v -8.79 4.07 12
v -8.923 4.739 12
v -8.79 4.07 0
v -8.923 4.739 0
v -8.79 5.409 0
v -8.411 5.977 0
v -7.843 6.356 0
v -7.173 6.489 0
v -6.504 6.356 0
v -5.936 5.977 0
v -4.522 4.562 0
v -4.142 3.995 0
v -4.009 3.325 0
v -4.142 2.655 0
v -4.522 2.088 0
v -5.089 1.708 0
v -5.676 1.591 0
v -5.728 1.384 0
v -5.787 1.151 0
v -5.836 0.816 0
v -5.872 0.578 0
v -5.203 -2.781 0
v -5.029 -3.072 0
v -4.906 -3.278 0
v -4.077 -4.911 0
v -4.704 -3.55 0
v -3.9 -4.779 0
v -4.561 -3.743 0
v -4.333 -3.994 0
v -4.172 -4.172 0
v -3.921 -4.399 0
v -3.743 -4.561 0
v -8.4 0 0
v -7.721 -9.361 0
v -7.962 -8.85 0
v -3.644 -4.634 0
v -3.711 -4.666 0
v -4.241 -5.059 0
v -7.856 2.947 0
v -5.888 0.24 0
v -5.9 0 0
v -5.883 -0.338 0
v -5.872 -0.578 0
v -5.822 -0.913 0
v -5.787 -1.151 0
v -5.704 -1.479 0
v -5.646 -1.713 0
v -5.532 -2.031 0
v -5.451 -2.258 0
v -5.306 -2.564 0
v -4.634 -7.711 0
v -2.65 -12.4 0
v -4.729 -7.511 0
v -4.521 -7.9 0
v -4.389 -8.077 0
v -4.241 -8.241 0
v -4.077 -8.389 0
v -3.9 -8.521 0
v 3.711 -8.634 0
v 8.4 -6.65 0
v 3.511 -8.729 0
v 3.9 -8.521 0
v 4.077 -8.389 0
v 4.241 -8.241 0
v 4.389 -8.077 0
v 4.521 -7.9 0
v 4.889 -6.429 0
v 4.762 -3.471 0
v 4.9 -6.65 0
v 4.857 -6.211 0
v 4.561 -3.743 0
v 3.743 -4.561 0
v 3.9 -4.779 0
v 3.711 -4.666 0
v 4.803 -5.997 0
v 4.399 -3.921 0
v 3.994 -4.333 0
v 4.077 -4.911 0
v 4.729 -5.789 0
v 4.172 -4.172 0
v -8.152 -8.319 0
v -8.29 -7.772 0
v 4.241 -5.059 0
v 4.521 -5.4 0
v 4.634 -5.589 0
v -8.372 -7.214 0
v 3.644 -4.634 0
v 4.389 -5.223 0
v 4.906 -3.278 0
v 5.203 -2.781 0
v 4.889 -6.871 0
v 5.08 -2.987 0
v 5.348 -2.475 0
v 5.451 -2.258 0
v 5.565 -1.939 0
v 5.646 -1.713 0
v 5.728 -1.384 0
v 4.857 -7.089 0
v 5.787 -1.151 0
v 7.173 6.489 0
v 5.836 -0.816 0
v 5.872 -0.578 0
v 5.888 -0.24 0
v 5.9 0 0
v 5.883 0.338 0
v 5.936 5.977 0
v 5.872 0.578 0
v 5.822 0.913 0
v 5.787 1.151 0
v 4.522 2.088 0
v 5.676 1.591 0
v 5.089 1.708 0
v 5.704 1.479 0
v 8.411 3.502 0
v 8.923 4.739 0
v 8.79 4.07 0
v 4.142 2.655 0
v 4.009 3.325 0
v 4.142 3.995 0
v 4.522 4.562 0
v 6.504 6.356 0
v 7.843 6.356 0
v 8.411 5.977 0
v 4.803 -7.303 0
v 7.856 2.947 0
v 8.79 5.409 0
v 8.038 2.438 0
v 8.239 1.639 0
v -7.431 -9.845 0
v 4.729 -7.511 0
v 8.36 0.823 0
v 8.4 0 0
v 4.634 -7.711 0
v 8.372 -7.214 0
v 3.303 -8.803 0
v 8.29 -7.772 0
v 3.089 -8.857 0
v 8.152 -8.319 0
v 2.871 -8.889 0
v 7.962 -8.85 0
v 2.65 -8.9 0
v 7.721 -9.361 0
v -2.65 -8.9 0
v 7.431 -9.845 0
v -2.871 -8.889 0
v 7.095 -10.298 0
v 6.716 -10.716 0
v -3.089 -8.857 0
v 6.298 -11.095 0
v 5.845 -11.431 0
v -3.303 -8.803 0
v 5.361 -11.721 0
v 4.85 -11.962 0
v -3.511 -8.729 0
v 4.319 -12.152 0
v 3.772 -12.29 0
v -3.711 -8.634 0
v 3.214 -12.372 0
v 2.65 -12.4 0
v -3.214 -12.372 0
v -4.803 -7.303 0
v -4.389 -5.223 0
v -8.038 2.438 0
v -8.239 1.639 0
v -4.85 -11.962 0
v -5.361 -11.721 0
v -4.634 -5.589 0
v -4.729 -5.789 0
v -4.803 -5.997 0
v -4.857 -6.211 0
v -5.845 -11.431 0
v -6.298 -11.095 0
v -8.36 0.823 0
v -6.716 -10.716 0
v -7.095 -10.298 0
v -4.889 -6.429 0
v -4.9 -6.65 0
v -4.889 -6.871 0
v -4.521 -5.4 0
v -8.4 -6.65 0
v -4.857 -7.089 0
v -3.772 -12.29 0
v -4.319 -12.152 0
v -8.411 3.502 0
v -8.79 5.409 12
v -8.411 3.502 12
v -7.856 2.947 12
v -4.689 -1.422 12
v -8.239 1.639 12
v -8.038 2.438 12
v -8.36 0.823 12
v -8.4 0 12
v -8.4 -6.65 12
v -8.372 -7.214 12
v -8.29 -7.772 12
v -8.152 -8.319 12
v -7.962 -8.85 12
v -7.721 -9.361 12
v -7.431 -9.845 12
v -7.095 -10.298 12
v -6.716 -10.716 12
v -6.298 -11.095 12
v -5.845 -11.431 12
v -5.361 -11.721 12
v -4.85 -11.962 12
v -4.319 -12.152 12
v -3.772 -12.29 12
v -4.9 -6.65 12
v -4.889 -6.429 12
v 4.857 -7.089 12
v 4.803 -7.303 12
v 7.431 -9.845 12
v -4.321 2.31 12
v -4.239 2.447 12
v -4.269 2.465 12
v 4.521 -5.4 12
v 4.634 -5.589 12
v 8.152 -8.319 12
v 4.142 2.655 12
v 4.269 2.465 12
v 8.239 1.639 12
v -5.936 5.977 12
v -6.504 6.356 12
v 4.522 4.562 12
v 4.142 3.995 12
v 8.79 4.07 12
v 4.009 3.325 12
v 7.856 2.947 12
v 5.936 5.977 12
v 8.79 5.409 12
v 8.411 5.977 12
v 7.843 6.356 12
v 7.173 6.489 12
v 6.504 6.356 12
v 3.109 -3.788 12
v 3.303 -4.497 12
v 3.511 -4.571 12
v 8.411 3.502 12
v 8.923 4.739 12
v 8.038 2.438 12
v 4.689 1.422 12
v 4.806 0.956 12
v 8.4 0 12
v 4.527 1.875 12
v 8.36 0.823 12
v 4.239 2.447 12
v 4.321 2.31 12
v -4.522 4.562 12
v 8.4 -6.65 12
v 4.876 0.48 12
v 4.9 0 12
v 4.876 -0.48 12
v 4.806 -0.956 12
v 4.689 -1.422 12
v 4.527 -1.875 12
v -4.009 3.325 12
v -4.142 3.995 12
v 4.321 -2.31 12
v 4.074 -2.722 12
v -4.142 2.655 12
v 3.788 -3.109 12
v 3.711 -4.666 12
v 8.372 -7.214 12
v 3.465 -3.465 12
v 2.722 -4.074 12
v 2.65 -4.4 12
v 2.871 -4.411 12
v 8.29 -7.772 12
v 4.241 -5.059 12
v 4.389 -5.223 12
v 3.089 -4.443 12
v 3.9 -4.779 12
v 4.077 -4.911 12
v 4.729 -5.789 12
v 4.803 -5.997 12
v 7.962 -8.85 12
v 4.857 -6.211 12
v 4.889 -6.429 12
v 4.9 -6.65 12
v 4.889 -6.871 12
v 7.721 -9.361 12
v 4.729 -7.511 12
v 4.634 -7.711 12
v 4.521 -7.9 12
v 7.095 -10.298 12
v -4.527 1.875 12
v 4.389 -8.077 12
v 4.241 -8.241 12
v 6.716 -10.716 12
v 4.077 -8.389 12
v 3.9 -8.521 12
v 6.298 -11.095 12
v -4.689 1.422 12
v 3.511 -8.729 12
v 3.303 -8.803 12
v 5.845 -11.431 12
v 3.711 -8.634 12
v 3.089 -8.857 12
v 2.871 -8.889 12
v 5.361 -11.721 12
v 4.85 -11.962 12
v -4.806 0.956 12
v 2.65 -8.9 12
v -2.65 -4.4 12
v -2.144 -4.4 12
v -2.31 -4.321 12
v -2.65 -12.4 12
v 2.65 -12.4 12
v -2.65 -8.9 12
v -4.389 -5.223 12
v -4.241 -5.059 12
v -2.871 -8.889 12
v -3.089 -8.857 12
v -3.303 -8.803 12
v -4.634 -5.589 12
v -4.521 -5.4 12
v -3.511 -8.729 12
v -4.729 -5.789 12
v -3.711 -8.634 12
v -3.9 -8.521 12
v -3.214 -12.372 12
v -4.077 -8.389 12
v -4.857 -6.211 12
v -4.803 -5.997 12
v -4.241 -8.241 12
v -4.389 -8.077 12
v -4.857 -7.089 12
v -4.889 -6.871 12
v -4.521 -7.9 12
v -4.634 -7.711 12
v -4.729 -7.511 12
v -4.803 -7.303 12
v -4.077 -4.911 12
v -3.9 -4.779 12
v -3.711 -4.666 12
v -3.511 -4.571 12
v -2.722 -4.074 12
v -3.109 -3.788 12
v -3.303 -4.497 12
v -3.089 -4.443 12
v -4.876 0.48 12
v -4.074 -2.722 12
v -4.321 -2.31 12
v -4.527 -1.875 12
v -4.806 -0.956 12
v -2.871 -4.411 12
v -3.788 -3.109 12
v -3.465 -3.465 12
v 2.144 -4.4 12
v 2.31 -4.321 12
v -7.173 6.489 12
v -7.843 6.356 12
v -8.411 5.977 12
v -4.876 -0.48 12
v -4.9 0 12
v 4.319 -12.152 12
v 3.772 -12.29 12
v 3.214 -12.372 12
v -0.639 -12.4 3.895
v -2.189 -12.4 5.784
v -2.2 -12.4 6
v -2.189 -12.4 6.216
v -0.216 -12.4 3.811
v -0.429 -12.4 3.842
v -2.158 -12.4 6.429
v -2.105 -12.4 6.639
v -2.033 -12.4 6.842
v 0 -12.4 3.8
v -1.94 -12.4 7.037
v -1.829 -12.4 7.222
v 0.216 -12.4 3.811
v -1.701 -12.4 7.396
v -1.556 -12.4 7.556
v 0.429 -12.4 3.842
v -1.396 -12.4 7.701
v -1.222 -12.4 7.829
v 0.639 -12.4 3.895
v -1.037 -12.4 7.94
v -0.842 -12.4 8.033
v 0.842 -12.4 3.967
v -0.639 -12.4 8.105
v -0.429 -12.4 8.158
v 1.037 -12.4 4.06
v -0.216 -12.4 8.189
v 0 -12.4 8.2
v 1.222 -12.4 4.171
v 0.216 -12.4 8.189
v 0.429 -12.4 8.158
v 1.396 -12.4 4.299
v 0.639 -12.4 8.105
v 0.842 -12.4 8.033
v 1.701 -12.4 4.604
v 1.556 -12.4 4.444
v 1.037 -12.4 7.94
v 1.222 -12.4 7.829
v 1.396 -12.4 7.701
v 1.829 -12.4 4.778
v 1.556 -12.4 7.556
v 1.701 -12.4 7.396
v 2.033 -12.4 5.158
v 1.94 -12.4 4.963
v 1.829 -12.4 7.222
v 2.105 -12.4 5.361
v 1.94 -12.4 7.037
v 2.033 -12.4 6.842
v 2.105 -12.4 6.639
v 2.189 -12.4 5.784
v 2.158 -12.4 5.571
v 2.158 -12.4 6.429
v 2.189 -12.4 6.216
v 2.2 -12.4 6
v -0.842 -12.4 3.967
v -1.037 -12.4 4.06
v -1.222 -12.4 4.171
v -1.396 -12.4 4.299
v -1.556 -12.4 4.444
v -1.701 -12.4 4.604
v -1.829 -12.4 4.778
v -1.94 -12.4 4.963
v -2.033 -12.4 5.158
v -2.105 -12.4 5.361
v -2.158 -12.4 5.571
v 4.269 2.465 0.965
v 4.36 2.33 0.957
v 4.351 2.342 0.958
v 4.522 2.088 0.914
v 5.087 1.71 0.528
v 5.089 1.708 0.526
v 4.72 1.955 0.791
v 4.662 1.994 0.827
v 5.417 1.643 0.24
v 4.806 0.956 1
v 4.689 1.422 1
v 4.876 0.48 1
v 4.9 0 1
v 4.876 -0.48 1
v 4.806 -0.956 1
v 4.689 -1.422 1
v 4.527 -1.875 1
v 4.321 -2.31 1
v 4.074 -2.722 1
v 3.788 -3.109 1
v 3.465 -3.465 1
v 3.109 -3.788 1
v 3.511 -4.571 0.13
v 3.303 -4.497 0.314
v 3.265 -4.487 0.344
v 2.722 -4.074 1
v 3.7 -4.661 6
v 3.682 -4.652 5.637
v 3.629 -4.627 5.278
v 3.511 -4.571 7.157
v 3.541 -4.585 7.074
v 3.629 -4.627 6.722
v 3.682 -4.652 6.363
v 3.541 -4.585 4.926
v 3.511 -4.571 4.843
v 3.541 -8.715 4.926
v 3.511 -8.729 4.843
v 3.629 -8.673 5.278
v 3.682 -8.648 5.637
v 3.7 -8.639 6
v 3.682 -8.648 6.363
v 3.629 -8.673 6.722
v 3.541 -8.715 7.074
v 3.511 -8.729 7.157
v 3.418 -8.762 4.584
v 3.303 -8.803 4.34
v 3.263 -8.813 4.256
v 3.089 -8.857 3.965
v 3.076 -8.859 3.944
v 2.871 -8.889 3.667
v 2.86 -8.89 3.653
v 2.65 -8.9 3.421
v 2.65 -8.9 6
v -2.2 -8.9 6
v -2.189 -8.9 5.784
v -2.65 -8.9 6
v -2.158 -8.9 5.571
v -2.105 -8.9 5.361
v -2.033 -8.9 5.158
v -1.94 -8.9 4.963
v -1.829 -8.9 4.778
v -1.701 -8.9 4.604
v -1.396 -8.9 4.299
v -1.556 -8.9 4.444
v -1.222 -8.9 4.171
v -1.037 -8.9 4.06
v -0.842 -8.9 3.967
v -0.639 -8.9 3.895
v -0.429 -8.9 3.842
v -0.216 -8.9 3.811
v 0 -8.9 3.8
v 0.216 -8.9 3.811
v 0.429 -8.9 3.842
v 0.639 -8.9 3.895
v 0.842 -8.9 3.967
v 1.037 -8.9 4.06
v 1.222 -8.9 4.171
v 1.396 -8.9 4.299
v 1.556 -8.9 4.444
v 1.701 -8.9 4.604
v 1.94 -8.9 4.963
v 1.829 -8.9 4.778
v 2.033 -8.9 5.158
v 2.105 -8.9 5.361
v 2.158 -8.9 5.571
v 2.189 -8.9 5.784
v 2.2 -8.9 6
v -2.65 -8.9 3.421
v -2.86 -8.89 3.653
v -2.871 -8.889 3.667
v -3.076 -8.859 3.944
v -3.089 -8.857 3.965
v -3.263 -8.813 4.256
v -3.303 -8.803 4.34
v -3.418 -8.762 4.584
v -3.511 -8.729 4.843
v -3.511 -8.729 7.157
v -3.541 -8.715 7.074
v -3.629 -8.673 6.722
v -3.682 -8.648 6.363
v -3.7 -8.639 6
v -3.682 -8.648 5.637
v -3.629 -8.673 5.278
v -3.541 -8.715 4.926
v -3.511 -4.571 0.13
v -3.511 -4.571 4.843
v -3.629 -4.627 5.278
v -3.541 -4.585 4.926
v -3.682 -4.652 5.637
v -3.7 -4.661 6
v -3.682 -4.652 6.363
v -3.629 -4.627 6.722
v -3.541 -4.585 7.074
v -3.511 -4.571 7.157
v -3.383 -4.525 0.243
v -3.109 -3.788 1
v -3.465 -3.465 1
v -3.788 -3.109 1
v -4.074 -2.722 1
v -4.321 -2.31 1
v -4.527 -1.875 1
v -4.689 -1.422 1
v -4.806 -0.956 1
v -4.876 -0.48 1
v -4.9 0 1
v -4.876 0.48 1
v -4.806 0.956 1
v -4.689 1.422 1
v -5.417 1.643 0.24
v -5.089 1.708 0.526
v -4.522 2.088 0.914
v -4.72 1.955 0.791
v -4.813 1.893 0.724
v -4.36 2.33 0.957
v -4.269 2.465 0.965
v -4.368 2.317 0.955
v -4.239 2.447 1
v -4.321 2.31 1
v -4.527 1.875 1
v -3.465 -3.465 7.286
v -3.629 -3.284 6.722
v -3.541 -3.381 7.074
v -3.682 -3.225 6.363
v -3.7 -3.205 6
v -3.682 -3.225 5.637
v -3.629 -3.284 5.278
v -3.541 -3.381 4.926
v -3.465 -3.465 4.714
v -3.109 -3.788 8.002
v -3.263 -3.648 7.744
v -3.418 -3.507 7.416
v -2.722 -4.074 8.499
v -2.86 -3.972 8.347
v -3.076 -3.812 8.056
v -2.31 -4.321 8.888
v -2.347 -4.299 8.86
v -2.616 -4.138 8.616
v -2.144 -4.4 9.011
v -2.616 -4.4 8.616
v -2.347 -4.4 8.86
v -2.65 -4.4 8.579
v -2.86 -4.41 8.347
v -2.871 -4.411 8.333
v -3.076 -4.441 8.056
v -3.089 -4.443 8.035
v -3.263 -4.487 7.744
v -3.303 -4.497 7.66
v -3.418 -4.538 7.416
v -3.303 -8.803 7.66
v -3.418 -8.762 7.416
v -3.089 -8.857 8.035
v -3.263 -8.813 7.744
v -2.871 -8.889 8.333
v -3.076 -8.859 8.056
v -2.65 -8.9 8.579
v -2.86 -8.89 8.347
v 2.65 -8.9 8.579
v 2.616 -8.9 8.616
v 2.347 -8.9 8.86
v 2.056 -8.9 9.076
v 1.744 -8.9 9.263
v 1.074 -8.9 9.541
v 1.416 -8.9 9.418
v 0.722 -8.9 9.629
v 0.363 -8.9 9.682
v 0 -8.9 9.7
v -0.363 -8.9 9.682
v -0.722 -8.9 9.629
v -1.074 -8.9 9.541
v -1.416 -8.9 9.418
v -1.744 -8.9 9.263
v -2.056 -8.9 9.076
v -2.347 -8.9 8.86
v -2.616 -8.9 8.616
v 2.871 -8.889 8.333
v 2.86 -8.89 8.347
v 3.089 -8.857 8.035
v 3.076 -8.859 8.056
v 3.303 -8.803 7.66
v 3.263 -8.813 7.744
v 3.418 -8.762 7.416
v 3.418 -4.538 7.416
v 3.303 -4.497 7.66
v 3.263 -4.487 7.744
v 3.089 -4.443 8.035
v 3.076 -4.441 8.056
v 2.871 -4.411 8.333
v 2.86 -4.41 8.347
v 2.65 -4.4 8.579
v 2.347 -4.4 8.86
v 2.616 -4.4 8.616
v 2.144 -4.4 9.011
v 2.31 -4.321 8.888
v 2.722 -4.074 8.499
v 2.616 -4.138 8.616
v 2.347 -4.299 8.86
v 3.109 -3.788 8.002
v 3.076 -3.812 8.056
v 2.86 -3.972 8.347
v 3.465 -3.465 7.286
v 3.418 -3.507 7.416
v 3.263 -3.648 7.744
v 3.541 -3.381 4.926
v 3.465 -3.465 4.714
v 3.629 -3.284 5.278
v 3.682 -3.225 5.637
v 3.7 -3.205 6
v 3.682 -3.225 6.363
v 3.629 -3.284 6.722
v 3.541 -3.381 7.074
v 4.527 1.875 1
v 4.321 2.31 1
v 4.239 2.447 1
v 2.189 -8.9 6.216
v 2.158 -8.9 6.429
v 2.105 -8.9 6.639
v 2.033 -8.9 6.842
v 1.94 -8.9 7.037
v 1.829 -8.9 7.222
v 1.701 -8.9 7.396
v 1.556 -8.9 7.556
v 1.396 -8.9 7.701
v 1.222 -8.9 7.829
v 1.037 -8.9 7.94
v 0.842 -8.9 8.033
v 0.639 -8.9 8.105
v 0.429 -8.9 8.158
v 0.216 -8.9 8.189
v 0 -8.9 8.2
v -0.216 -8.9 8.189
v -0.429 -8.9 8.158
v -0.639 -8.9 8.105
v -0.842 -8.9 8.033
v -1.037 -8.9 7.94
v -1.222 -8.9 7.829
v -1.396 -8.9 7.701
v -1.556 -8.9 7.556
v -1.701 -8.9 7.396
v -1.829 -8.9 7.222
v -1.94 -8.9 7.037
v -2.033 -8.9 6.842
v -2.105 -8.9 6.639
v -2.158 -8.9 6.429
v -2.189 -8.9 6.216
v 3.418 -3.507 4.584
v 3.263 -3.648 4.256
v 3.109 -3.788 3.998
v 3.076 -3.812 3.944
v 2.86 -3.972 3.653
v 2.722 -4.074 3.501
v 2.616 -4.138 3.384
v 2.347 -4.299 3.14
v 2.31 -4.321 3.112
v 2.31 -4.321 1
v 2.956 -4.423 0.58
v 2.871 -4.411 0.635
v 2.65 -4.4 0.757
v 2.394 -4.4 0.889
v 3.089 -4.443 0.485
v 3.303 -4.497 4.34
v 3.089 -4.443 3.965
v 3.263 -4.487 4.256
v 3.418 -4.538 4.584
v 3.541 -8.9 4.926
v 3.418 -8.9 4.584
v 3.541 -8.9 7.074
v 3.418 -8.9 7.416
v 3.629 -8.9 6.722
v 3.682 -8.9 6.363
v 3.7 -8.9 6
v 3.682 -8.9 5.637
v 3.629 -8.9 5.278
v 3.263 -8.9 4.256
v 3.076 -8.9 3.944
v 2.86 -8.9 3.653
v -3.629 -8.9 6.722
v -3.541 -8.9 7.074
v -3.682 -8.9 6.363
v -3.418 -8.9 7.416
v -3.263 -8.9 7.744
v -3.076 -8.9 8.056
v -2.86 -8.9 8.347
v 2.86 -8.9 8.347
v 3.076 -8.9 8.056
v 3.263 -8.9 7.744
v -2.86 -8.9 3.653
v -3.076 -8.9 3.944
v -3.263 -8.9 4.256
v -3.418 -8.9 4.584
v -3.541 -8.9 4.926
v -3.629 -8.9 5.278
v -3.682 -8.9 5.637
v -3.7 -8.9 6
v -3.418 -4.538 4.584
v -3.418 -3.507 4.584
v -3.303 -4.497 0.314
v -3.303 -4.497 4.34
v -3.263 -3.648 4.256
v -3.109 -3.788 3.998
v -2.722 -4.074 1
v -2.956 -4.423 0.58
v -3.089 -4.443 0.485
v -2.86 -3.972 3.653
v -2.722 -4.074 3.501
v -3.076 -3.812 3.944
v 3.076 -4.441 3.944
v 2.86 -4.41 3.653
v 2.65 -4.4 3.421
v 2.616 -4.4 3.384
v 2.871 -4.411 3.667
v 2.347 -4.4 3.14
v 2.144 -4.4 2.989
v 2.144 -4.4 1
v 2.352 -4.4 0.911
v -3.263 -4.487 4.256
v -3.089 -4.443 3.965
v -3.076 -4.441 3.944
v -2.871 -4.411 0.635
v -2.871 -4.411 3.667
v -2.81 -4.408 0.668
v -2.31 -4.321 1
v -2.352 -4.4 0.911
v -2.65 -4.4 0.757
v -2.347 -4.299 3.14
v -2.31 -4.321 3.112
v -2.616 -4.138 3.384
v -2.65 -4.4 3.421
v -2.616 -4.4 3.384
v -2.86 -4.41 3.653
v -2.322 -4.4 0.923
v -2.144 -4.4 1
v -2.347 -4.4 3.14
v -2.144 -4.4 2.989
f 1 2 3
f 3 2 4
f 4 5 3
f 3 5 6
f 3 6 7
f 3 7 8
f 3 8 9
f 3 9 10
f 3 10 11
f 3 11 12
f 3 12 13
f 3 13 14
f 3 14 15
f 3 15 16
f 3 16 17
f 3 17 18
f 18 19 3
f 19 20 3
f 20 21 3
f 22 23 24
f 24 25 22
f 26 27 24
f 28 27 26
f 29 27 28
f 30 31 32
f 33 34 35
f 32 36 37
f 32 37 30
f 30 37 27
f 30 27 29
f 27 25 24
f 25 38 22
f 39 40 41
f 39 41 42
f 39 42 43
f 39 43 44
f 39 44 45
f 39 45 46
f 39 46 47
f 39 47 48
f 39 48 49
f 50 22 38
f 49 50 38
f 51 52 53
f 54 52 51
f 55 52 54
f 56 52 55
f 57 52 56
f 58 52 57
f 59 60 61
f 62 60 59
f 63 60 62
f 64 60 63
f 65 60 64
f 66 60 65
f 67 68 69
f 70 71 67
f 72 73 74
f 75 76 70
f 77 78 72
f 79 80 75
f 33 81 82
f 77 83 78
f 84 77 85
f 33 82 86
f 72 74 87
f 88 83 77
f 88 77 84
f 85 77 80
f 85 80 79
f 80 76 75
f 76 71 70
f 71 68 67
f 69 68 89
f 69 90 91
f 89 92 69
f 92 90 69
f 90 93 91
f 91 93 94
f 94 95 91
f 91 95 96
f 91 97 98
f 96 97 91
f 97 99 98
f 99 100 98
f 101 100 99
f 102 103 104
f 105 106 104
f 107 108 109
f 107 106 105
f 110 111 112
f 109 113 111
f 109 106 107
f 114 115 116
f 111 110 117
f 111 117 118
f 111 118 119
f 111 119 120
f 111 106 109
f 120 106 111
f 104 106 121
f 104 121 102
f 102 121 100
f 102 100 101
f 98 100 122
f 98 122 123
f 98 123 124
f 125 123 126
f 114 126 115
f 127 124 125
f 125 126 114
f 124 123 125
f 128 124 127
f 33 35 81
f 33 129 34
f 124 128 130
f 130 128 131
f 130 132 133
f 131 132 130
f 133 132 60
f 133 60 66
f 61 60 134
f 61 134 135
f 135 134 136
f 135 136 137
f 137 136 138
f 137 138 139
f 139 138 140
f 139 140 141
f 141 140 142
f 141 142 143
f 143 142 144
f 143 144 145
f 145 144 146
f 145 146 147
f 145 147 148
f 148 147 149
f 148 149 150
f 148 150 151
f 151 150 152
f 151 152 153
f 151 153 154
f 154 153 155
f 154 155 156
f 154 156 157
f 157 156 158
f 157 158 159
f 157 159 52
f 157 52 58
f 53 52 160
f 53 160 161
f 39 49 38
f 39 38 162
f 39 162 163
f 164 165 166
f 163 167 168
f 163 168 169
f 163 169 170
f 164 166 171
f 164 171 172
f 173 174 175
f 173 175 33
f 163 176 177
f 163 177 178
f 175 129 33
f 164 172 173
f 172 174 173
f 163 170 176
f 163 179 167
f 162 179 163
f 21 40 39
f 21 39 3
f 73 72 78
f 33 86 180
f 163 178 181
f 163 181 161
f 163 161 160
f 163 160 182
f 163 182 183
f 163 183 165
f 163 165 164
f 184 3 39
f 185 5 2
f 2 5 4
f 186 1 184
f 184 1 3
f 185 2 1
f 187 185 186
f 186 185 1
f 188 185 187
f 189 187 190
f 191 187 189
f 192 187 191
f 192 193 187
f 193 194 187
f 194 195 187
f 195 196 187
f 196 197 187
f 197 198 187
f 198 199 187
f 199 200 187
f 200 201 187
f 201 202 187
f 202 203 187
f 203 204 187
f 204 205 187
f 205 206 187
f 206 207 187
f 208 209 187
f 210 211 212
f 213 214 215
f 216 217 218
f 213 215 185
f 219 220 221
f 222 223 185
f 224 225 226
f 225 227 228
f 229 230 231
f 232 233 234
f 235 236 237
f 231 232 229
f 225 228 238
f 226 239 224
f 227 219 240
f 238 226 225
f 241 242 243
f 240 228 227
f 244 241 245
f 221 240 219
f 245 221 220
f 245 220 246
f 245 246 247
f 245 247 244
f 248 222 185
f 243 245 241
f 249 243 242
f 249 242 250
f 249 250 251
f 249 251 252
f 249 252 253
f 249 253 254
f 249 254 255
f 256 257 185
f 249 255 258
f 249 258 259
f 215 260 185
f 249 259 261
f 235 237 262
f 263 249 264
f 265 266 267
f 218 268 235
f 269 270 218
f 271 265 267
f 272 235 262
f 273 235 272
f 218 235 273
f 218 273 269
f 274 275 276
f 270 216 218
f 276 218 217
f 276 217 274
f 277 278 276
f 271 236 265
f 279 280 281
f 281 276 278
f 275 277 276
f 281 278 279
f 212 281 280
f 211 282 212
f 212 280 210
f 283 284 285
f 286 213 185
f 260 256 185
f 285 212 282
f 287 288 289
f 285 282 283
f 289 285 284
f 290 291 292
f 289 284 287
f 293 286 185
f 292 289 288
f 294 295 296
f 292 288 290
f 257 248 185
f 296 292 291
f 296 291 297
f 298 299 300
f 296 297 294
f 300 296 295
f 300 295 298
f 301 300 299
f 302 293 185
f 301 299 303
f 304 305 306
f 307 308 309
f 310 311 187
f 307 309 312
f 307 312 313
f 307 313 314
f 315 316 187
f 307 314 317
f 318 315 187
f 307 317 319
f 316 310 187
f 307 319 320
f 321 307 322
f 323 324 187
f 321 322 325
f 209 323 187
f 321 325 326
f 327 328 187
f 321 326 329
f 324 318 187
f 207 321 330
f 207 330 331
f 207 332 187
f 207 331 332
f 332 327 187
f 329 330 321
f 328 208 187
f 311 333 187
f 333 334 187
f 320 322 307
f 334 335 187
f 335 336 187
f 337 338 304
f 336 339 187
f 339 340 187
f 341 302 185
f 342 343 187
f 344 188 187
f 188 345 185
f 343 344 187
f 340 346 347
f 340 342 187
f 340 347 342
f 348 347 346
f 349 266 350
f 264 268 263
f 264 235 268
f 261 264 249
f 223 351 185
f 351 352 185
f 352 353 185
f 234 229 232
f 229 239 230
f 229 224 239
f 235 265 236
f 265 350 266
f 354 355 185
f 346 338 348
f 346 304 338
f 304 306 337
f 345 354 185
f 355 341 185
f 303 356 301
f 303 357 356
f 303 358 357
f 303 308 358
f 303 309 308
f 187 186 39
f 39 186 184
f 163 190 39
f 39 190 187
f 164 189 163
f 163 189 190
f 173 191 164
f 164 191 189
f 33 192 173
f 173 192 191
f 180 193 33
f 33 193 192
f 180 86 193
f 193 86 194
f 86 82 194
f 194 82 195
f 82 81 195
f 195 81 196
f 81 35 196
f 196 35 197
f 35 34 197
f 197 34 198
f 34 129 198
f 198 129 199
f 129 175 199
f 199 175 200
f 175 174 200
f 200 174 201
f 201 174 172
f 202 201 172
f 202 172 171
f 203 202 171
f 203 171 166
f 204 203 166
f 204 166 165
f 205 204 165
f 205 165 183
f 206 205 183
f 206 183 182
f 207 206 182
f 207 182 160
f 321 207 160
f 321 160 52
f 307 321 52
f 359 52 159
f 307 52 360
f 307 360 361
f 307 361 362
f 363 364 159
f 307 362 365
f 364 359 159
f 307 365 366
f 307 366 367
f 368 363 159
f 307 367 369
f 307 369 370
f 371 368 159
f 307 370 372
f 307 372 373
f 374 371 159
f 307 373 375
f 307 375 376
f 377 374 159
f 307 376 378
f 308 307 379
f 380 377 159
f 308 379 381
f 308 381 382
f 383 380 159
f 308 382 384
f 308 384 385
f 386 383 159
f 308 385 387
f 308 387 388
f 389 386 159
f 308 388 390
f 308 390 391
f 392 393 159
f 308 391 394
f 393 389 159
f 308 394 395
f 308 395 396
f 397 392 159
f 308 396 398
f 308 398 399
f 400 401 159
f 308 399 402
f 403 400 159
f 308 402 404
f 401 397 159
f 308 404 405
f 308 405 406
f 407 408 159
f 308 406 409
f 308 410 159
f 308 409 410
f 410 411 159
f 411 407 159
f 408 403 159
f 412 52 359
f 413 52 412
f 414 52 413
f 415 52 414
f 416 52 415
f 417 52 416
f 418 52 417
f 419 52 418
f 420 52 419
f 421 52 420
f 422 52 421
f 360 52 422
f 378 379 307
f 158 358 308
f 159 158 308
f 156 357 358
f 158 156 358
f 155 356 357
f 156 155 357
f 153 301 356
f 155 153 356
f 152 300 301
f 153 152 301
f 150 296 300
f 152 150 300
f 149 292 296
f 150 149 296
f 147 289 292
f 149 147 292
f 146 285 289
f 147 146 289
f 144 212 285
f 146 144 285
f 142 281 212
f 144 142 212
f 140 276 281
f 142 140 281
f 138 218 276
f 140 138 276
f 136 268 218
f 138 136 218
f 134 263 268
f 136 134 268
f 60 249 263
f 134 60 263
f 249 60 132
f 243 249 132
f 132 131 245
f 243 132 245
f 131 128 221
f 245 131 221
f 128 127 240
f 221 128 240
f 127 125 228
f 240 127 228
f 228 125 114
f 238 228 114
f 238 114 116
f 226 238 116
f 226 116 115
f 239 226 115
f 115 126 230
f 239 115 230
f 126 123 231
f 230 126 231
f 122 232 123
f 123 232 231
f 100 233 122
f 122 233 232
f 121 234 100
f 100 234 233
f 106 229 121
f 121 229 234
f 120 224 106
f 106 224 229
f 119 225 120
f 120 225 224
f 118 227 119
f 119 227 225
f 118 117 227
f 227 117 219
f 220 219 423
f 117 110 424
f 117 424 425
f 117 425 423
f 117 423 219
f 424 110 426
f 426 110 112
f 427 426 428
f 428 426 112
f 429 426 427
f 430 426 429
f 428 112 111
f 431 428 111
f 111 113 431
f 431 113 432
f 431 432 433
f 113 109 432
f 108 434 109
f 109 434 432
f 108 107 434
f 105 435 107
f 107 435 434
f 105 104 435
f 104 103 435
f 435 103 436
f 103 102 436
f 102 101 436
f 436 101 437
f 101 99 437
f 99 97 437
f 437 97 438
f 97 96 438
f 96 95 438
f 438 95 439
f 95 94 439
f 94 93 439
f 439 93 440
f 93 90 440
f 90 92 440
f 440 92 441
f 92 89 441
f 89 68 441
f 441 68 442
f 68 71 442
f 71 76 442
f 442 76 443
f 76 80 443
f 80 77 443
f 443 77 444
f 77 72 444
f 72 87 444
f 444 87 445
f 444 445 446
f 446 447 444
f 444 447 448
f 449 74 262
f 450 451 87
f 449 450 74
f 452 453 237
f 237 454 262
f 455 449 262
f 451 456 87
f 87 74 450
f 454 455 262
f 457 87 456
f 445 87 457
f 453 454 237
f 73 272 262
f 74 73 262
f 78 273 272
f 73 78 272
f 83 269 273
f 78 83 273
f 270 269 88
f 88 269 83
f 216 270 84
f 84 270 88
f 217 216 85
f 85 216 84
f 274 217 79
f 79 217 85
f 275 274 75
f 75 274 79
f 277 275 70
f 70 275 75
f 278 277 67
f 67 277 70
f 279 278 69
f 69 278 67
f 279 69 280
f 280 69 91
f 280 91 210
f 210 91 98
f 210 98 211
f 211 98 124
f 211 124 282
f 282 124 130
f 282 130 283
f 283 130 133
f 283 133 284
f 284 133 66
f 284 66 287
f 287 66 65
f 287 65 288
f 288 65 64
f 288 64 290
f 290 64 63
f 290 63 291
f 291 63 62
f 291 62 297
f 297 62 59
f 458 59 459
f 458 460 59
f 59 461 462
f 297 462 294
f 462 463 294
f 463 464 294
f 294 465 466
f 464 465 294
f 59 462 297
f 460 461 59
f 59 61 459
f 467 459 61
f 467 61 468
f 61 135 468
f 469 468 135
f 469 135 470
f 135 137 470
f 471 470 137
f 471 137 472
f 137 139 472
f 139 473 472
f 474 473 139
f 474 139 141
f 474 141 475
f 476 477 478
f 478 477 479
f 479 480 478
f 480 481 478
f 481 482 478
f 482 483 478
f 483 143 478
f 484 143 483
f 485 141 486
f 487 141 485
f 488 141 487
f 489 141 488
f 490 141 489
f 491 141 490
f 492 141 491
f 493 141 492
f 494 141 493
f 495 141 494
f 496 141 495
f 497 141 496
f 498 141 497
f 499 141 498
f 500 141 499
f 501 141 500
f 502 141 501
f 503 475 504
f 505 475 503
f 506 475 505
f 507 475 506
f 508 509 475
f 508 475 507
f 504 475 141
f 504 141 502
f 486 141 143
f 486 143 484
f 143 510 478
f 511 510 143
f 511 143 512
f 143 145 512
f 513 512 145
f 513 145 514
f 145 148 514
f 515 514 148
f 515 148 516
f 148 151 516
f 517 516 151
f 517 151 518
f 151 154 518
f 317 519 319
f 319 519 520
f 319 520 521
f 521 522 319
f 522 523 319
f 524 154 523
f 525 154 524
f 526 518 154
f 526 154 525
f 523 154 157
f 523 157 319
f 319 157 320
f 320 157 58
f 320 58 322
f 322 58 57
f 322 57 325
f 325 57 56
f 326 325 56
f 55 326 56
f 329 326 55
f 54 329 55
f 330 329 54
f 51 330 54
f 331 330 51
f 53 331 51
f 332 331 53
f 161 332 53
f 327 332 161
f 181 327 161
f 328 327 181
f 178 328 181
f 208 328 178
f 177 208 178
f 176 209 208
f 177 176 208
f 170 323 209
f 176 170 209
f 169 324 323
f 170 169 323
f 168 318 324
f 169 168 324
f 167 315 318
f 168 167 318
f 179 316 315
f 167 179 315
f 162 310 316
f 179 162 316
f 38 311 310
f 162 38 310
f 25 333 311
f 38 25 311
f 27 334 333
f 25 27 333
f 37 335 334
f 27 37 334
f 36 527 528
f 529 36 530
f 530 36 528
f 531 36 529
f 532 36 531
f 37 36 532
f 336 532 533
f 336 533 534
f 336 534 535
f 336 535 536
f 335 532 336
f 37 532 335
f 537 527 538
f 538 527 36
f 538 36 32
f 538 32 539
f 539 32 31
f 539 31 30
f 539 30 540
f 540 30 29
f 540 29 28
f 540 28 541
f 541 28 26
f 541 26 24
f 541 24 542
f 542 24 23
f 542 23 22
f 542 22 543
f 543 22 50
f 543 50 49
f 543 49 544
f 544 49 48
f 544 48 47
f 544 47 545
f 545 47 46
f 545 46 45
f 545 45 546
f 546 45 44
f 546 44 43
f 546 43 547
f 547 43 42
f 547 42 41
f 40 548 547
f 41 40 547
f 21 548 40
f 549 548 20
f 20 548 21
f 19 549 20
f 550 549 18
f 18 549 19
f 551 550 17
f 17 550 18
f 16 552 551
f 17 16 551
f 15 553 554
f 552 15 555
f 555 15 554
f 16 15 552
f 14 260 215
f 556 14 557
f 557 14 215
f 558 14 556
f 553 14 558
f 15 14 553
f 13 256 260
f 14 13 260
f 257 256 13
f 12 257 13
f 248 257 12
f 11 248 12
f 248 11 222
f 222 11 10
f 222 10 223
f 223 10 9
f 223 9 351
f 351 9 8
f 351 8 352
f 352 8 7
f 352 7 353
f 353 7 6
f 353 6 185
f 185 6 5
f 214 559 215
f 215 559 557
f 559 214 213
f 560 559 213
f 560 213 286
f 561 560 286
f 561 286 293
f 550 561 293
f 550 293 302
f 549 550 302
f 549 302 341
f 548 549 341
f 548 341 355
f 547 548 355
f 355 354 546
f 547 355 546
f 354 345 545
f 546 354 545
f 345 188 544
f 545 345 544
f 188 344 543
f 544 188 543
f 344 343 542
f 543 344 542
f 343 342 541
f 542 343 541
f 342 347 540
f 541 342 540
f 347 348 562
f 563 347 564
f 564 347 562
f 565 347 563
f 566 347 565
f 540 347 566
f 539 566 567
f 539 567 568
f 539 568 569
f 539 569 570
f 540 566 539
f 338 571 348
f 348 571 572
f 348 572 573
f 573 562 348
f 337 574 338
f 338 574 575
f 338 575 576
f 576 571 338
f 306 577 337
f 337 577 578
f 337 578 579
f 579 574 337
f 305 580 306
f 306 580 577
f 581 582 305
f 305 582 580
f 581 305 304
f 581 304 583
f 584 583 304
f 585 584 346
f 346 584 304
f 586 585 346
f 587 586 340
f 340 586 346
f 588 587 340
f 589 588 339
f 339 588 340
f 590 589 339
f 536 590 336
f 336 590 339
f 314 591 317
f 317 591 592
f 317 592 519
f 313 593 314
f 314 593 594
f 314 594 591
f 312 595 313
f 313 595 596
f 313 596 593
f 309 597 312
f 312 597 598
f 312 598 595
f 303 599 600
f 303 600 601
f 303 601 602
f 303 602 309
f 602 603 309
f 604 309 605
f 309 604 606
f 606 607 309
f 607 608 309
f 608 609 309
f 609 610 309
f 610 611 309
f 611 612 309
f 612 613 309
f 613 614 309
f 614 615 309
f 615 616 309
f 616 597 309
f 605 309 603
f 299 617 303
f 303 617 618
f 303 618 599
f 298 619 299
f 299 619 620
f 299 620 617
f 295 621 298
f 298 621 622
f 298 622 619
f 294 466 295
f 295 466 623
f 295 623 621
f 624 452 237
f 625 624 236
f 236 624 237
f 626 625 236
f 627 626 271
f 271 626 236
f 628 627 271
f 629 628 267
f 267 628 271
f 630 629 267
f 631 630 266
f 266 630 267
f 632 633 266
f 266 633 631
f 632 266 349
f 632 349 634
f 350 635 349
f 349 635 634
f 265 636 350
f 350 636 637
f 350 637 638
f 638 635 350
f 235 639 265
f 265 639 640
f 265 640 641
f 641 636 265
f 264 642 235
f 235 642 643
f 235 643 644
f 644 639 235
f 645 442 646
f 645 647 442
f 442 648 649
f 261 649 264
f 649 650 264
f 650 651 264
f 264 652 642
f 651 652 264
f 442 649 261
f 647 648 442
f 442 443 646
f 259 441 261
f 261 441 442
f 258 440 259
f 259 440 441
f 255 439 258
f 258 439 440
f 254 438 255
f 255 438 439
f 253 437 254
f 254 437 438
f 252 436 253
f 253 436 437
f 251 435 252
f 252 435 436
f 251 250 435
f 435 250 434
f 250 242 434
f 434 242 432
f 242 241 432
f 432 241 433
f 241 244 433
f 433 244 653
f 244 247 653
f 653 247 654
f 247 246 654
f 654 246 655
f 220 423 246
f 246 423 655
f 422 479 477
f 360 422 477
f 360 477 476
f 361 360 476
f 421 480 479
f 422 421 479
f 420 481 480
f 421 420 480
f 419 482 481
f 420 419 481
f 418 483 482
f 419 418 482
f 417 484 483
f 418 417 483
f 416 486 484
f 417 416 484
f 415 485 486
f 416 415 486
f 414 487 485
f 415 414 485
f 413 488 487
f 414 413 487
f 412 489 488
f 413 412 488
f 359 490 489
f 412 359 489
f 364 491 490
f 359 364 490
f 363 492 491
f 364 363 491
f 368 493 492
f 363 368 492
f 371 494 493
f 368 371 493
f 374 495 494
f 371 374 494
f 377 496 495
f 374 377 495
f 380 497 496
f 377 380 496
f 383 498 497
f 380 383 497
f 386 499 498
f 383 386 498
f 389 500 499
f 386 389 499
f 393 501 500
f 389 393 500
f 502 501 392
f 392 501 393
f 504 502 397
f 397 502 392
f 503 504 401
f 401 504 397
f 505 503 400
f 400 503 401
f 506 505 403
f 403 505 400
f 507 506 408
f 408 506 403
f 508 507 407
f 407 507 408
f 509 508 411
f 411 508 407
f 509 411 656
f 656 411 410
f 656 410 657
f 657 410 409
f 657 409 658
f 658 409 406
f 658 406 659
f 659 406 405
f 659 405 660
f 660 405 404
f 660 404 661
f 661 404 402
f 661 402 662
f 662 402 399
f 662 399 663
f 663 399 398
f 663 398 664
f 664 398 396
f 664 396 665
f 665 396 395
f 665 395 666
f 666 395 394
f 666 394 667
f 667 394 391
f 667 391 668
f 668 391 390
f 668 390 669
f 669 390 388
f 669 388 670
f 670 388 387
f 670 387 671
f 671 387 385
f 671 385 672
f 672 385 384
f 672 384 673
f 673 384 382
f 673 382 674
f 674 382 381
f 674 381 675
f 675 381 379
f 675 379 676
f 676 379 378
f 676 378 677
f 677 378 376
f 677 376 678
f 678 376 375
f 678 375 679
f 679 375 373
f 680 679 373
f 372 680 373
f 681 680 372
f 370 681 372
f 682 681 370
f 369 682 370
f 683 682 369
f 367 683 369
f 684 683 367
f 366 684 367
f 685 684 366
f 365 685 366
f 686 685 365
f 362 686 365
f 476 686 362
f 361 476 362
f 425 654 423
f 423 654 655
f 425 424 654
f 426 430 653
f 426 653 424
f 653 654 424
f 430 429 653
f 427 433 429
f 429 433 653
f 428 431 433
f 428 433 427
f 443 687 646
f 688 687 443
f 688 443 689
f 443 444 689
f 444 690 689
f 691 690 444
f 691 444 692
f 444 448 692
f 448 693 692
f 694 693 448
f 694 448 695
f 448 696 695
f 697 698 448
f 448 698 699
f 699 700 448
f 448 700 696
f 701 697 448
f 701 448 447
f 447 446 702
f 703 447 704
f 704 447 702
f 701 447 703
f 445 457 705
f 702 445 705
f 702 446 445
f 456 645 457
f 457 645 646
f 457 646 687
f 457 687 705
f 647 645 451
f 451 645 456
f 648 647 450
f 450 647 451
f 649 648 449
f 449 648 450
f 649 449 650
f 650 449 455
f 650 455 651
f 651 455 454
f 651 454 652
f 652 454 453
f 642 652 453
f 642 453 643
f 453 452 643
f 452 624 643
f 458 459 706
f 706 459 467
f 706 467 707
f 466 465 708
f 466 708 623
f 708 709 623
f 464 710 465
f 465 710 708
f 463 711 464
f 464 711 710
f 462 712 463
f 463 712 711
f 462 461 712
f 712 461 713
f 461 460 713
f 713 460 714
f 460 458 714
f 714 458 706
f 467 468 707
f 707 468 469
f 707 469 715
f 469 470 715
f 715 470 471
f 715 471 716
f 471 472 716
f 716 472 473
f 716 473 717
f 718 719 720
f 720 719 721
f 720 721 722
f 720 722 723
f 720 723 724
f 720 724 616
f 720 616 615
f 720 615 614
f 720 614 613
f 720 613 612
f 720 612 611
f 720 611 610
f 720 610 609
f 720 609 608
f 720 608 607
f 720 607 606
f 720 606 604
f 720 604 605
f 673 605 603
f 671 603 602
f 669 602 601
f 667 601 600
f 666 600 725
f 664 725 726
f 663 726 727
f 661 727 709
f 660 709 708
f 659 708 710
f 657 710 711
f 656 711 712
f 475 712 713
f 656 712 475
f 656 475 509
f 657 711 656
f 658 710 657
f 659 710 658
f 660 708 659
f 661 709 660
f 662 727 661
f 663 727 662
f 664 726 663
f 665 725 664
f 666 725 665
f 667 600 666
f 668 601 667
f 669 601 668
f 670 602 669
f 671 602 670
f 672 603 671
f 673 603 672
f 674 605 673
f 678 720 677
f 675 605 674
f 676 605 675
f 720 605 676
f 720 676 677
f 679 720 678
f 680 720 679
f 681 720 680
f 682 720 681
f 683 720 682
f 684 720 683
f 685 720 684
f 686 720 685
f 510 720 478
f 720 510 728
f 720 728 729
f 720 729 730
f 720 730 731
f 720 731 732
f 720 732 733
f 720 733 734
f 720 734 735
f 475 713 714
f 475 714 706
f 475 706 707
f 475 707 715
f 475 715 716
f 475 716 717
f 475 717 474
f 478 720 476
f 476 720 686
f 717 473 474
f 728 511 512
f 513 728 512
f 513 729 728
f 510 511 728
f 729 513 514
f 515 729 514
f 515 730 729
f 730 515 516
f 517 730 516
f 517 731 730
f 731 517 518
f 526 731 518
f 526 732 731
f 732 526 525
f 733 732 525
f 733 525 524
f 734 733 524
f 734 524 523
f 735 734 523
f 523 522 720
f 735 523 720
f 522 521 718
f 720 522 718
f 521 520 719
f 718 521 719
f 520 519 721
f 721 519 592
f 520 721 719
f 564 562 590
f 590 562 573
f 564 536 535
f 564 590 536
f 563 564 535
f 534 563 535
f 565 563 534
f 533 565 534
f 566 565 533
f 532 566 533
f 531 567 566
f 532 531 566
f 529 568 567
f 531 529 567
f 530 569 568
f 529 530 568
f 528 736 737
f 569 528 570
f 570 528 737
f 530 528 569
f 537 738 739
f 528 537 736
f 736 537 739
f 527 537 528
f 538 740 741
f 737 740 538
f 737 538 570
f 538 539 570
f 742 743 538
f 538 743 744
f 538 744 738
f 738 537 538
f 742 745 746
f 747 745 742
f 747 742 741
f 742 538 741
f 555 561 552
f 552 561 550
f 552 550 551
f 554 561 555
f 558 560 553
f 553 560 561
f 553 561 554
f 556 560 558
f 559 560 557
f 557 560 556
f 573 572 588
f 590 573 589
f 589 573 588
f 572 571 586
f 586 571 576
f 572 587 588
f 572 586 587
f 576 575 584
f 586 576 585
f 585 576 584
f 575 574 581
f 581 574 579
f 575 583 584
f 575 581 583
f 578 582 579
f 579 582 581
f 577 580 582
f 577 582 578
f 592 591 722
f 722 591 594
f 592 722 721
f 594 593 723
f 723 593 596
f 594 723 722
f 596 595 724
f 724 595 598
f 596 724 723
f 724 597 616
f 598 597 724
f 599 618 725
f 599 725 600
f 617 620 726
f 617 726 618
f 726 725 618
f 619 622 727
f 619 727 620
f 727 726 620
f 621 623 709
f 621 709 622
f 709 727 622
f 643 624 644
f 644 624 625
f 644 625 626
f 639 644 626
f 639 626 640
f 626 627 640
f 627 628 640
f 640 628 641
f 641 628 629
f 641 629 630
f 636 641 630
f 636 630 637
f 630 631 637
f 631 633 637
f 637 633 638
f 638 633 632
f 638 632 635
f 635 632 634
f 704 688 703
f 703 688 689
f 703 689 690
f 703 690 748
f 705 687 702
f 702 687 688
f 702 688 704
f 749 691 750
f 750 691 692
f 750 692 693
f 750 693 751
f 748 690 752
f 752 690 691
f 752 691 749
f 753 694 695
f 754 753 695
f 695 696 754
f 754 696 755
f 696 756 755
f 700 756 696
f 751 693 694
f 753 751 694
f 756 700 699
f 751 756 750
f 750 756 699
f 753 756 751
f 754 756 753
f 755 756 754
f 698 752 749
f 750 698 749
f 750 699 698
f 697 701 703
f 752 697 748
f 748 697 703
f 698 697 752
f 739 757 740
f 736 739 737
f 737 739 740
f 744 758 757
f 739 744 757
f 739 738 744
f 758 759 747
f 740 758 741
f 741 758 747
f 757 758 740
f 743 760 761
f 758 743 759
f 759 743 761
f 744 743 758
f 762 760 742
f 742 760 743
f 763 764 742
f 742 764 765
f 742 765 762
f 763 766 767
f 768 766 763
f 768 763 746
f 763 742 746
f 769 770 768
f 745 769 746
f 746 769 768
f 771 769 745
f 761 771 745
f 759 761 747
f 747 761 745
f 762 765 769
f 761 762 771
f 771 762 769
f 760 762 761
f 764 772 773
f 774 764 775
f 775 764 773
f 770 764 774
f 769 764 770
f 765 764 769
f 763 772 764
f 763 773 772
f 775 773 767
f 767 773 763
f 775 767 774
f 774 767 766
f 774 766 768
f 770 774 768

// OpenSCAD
// file: cylinder_clip.scad
use <../utilities.scad>;

module cylinder_clip(r=1,t=3,opening_angle=120,wing_length=2,wing_angle=45,flat_w=10,flat_t=3,h=10,$fn=$fn){
	union(){
		difference(){
			hull(){
				cylinder(r=r+t,$fn=$fn,h=h);
				translate([-flat_w/2,-r-flat_t,0]) cube([flat_w,0.1,h]);
			}
			cylinder(r=r,$fn=$fn,h=99999,center=true);
			cylinder(r1=r+2,r2=r,$fn=$fn,h=2,center=true);
			scale([tan(opening_angle/2),1,1]) rotate([0,0,45]) translate([0,0,-1]) cube([1,1,1]*9999);
		}
		reflect([1,0,0]) translate([sin(opening_angle/2),cos(opening_angle/2),0]*(r+t/2)) hull() repeat([sin(wing_angle),cos(wing_angle),0]*wing_length,2)
			cylinder(r=t/2,h=h,$fn=16);
			
	}
}

//cylinder_clip(r=3,t=2,flat_w=6);
union(){
	cylinder_clip(r=21,t=4.5,flat_t=10,opening_angle=100,$fn=64);
	translate([-5,-22-5-20,0]) cube([10,20,10]);
}
// main file
use <../utilities.scad>;
use <./cylinder_clip.scad>;

$fn=64;
rack_r = 10/2-0.1;
t=3.5;
h=12;
standoff = 4+t;
cr = (standoff-t+0.5)/2;

difference(){
	cylinder_clip(r=rack_r,t=t,flat_t=standoff,flat_w=2*rack_r+2*t,h=h);
	translate([0,-rack_r-4,h/2]){
		//screw_y(4,fudge=0.9,h=999,shaft=true,extraheight=0);
		rotate([90,0,0]) cylinder(r=2.2,h=999,center=true);
		rotate([-90,0,0]) cylinder(r=3.7,h=999);
	}
	reflect([1,0,0]) translate([-rack_r+cr,-rack_r-standoff+t+cr,-1]) difference(){
		mirror([1,0,0]) mirror([0,1,0]) cube([999,999,999]);
		cylinder(r=t+cr,h=999,center=true);
	}
	hull() reflect([1,0,0]) translate([-rack_r+cr,-rack_r-standoff+t+cr,0]) cylinder(r=cr,h=999,center=true);
}
